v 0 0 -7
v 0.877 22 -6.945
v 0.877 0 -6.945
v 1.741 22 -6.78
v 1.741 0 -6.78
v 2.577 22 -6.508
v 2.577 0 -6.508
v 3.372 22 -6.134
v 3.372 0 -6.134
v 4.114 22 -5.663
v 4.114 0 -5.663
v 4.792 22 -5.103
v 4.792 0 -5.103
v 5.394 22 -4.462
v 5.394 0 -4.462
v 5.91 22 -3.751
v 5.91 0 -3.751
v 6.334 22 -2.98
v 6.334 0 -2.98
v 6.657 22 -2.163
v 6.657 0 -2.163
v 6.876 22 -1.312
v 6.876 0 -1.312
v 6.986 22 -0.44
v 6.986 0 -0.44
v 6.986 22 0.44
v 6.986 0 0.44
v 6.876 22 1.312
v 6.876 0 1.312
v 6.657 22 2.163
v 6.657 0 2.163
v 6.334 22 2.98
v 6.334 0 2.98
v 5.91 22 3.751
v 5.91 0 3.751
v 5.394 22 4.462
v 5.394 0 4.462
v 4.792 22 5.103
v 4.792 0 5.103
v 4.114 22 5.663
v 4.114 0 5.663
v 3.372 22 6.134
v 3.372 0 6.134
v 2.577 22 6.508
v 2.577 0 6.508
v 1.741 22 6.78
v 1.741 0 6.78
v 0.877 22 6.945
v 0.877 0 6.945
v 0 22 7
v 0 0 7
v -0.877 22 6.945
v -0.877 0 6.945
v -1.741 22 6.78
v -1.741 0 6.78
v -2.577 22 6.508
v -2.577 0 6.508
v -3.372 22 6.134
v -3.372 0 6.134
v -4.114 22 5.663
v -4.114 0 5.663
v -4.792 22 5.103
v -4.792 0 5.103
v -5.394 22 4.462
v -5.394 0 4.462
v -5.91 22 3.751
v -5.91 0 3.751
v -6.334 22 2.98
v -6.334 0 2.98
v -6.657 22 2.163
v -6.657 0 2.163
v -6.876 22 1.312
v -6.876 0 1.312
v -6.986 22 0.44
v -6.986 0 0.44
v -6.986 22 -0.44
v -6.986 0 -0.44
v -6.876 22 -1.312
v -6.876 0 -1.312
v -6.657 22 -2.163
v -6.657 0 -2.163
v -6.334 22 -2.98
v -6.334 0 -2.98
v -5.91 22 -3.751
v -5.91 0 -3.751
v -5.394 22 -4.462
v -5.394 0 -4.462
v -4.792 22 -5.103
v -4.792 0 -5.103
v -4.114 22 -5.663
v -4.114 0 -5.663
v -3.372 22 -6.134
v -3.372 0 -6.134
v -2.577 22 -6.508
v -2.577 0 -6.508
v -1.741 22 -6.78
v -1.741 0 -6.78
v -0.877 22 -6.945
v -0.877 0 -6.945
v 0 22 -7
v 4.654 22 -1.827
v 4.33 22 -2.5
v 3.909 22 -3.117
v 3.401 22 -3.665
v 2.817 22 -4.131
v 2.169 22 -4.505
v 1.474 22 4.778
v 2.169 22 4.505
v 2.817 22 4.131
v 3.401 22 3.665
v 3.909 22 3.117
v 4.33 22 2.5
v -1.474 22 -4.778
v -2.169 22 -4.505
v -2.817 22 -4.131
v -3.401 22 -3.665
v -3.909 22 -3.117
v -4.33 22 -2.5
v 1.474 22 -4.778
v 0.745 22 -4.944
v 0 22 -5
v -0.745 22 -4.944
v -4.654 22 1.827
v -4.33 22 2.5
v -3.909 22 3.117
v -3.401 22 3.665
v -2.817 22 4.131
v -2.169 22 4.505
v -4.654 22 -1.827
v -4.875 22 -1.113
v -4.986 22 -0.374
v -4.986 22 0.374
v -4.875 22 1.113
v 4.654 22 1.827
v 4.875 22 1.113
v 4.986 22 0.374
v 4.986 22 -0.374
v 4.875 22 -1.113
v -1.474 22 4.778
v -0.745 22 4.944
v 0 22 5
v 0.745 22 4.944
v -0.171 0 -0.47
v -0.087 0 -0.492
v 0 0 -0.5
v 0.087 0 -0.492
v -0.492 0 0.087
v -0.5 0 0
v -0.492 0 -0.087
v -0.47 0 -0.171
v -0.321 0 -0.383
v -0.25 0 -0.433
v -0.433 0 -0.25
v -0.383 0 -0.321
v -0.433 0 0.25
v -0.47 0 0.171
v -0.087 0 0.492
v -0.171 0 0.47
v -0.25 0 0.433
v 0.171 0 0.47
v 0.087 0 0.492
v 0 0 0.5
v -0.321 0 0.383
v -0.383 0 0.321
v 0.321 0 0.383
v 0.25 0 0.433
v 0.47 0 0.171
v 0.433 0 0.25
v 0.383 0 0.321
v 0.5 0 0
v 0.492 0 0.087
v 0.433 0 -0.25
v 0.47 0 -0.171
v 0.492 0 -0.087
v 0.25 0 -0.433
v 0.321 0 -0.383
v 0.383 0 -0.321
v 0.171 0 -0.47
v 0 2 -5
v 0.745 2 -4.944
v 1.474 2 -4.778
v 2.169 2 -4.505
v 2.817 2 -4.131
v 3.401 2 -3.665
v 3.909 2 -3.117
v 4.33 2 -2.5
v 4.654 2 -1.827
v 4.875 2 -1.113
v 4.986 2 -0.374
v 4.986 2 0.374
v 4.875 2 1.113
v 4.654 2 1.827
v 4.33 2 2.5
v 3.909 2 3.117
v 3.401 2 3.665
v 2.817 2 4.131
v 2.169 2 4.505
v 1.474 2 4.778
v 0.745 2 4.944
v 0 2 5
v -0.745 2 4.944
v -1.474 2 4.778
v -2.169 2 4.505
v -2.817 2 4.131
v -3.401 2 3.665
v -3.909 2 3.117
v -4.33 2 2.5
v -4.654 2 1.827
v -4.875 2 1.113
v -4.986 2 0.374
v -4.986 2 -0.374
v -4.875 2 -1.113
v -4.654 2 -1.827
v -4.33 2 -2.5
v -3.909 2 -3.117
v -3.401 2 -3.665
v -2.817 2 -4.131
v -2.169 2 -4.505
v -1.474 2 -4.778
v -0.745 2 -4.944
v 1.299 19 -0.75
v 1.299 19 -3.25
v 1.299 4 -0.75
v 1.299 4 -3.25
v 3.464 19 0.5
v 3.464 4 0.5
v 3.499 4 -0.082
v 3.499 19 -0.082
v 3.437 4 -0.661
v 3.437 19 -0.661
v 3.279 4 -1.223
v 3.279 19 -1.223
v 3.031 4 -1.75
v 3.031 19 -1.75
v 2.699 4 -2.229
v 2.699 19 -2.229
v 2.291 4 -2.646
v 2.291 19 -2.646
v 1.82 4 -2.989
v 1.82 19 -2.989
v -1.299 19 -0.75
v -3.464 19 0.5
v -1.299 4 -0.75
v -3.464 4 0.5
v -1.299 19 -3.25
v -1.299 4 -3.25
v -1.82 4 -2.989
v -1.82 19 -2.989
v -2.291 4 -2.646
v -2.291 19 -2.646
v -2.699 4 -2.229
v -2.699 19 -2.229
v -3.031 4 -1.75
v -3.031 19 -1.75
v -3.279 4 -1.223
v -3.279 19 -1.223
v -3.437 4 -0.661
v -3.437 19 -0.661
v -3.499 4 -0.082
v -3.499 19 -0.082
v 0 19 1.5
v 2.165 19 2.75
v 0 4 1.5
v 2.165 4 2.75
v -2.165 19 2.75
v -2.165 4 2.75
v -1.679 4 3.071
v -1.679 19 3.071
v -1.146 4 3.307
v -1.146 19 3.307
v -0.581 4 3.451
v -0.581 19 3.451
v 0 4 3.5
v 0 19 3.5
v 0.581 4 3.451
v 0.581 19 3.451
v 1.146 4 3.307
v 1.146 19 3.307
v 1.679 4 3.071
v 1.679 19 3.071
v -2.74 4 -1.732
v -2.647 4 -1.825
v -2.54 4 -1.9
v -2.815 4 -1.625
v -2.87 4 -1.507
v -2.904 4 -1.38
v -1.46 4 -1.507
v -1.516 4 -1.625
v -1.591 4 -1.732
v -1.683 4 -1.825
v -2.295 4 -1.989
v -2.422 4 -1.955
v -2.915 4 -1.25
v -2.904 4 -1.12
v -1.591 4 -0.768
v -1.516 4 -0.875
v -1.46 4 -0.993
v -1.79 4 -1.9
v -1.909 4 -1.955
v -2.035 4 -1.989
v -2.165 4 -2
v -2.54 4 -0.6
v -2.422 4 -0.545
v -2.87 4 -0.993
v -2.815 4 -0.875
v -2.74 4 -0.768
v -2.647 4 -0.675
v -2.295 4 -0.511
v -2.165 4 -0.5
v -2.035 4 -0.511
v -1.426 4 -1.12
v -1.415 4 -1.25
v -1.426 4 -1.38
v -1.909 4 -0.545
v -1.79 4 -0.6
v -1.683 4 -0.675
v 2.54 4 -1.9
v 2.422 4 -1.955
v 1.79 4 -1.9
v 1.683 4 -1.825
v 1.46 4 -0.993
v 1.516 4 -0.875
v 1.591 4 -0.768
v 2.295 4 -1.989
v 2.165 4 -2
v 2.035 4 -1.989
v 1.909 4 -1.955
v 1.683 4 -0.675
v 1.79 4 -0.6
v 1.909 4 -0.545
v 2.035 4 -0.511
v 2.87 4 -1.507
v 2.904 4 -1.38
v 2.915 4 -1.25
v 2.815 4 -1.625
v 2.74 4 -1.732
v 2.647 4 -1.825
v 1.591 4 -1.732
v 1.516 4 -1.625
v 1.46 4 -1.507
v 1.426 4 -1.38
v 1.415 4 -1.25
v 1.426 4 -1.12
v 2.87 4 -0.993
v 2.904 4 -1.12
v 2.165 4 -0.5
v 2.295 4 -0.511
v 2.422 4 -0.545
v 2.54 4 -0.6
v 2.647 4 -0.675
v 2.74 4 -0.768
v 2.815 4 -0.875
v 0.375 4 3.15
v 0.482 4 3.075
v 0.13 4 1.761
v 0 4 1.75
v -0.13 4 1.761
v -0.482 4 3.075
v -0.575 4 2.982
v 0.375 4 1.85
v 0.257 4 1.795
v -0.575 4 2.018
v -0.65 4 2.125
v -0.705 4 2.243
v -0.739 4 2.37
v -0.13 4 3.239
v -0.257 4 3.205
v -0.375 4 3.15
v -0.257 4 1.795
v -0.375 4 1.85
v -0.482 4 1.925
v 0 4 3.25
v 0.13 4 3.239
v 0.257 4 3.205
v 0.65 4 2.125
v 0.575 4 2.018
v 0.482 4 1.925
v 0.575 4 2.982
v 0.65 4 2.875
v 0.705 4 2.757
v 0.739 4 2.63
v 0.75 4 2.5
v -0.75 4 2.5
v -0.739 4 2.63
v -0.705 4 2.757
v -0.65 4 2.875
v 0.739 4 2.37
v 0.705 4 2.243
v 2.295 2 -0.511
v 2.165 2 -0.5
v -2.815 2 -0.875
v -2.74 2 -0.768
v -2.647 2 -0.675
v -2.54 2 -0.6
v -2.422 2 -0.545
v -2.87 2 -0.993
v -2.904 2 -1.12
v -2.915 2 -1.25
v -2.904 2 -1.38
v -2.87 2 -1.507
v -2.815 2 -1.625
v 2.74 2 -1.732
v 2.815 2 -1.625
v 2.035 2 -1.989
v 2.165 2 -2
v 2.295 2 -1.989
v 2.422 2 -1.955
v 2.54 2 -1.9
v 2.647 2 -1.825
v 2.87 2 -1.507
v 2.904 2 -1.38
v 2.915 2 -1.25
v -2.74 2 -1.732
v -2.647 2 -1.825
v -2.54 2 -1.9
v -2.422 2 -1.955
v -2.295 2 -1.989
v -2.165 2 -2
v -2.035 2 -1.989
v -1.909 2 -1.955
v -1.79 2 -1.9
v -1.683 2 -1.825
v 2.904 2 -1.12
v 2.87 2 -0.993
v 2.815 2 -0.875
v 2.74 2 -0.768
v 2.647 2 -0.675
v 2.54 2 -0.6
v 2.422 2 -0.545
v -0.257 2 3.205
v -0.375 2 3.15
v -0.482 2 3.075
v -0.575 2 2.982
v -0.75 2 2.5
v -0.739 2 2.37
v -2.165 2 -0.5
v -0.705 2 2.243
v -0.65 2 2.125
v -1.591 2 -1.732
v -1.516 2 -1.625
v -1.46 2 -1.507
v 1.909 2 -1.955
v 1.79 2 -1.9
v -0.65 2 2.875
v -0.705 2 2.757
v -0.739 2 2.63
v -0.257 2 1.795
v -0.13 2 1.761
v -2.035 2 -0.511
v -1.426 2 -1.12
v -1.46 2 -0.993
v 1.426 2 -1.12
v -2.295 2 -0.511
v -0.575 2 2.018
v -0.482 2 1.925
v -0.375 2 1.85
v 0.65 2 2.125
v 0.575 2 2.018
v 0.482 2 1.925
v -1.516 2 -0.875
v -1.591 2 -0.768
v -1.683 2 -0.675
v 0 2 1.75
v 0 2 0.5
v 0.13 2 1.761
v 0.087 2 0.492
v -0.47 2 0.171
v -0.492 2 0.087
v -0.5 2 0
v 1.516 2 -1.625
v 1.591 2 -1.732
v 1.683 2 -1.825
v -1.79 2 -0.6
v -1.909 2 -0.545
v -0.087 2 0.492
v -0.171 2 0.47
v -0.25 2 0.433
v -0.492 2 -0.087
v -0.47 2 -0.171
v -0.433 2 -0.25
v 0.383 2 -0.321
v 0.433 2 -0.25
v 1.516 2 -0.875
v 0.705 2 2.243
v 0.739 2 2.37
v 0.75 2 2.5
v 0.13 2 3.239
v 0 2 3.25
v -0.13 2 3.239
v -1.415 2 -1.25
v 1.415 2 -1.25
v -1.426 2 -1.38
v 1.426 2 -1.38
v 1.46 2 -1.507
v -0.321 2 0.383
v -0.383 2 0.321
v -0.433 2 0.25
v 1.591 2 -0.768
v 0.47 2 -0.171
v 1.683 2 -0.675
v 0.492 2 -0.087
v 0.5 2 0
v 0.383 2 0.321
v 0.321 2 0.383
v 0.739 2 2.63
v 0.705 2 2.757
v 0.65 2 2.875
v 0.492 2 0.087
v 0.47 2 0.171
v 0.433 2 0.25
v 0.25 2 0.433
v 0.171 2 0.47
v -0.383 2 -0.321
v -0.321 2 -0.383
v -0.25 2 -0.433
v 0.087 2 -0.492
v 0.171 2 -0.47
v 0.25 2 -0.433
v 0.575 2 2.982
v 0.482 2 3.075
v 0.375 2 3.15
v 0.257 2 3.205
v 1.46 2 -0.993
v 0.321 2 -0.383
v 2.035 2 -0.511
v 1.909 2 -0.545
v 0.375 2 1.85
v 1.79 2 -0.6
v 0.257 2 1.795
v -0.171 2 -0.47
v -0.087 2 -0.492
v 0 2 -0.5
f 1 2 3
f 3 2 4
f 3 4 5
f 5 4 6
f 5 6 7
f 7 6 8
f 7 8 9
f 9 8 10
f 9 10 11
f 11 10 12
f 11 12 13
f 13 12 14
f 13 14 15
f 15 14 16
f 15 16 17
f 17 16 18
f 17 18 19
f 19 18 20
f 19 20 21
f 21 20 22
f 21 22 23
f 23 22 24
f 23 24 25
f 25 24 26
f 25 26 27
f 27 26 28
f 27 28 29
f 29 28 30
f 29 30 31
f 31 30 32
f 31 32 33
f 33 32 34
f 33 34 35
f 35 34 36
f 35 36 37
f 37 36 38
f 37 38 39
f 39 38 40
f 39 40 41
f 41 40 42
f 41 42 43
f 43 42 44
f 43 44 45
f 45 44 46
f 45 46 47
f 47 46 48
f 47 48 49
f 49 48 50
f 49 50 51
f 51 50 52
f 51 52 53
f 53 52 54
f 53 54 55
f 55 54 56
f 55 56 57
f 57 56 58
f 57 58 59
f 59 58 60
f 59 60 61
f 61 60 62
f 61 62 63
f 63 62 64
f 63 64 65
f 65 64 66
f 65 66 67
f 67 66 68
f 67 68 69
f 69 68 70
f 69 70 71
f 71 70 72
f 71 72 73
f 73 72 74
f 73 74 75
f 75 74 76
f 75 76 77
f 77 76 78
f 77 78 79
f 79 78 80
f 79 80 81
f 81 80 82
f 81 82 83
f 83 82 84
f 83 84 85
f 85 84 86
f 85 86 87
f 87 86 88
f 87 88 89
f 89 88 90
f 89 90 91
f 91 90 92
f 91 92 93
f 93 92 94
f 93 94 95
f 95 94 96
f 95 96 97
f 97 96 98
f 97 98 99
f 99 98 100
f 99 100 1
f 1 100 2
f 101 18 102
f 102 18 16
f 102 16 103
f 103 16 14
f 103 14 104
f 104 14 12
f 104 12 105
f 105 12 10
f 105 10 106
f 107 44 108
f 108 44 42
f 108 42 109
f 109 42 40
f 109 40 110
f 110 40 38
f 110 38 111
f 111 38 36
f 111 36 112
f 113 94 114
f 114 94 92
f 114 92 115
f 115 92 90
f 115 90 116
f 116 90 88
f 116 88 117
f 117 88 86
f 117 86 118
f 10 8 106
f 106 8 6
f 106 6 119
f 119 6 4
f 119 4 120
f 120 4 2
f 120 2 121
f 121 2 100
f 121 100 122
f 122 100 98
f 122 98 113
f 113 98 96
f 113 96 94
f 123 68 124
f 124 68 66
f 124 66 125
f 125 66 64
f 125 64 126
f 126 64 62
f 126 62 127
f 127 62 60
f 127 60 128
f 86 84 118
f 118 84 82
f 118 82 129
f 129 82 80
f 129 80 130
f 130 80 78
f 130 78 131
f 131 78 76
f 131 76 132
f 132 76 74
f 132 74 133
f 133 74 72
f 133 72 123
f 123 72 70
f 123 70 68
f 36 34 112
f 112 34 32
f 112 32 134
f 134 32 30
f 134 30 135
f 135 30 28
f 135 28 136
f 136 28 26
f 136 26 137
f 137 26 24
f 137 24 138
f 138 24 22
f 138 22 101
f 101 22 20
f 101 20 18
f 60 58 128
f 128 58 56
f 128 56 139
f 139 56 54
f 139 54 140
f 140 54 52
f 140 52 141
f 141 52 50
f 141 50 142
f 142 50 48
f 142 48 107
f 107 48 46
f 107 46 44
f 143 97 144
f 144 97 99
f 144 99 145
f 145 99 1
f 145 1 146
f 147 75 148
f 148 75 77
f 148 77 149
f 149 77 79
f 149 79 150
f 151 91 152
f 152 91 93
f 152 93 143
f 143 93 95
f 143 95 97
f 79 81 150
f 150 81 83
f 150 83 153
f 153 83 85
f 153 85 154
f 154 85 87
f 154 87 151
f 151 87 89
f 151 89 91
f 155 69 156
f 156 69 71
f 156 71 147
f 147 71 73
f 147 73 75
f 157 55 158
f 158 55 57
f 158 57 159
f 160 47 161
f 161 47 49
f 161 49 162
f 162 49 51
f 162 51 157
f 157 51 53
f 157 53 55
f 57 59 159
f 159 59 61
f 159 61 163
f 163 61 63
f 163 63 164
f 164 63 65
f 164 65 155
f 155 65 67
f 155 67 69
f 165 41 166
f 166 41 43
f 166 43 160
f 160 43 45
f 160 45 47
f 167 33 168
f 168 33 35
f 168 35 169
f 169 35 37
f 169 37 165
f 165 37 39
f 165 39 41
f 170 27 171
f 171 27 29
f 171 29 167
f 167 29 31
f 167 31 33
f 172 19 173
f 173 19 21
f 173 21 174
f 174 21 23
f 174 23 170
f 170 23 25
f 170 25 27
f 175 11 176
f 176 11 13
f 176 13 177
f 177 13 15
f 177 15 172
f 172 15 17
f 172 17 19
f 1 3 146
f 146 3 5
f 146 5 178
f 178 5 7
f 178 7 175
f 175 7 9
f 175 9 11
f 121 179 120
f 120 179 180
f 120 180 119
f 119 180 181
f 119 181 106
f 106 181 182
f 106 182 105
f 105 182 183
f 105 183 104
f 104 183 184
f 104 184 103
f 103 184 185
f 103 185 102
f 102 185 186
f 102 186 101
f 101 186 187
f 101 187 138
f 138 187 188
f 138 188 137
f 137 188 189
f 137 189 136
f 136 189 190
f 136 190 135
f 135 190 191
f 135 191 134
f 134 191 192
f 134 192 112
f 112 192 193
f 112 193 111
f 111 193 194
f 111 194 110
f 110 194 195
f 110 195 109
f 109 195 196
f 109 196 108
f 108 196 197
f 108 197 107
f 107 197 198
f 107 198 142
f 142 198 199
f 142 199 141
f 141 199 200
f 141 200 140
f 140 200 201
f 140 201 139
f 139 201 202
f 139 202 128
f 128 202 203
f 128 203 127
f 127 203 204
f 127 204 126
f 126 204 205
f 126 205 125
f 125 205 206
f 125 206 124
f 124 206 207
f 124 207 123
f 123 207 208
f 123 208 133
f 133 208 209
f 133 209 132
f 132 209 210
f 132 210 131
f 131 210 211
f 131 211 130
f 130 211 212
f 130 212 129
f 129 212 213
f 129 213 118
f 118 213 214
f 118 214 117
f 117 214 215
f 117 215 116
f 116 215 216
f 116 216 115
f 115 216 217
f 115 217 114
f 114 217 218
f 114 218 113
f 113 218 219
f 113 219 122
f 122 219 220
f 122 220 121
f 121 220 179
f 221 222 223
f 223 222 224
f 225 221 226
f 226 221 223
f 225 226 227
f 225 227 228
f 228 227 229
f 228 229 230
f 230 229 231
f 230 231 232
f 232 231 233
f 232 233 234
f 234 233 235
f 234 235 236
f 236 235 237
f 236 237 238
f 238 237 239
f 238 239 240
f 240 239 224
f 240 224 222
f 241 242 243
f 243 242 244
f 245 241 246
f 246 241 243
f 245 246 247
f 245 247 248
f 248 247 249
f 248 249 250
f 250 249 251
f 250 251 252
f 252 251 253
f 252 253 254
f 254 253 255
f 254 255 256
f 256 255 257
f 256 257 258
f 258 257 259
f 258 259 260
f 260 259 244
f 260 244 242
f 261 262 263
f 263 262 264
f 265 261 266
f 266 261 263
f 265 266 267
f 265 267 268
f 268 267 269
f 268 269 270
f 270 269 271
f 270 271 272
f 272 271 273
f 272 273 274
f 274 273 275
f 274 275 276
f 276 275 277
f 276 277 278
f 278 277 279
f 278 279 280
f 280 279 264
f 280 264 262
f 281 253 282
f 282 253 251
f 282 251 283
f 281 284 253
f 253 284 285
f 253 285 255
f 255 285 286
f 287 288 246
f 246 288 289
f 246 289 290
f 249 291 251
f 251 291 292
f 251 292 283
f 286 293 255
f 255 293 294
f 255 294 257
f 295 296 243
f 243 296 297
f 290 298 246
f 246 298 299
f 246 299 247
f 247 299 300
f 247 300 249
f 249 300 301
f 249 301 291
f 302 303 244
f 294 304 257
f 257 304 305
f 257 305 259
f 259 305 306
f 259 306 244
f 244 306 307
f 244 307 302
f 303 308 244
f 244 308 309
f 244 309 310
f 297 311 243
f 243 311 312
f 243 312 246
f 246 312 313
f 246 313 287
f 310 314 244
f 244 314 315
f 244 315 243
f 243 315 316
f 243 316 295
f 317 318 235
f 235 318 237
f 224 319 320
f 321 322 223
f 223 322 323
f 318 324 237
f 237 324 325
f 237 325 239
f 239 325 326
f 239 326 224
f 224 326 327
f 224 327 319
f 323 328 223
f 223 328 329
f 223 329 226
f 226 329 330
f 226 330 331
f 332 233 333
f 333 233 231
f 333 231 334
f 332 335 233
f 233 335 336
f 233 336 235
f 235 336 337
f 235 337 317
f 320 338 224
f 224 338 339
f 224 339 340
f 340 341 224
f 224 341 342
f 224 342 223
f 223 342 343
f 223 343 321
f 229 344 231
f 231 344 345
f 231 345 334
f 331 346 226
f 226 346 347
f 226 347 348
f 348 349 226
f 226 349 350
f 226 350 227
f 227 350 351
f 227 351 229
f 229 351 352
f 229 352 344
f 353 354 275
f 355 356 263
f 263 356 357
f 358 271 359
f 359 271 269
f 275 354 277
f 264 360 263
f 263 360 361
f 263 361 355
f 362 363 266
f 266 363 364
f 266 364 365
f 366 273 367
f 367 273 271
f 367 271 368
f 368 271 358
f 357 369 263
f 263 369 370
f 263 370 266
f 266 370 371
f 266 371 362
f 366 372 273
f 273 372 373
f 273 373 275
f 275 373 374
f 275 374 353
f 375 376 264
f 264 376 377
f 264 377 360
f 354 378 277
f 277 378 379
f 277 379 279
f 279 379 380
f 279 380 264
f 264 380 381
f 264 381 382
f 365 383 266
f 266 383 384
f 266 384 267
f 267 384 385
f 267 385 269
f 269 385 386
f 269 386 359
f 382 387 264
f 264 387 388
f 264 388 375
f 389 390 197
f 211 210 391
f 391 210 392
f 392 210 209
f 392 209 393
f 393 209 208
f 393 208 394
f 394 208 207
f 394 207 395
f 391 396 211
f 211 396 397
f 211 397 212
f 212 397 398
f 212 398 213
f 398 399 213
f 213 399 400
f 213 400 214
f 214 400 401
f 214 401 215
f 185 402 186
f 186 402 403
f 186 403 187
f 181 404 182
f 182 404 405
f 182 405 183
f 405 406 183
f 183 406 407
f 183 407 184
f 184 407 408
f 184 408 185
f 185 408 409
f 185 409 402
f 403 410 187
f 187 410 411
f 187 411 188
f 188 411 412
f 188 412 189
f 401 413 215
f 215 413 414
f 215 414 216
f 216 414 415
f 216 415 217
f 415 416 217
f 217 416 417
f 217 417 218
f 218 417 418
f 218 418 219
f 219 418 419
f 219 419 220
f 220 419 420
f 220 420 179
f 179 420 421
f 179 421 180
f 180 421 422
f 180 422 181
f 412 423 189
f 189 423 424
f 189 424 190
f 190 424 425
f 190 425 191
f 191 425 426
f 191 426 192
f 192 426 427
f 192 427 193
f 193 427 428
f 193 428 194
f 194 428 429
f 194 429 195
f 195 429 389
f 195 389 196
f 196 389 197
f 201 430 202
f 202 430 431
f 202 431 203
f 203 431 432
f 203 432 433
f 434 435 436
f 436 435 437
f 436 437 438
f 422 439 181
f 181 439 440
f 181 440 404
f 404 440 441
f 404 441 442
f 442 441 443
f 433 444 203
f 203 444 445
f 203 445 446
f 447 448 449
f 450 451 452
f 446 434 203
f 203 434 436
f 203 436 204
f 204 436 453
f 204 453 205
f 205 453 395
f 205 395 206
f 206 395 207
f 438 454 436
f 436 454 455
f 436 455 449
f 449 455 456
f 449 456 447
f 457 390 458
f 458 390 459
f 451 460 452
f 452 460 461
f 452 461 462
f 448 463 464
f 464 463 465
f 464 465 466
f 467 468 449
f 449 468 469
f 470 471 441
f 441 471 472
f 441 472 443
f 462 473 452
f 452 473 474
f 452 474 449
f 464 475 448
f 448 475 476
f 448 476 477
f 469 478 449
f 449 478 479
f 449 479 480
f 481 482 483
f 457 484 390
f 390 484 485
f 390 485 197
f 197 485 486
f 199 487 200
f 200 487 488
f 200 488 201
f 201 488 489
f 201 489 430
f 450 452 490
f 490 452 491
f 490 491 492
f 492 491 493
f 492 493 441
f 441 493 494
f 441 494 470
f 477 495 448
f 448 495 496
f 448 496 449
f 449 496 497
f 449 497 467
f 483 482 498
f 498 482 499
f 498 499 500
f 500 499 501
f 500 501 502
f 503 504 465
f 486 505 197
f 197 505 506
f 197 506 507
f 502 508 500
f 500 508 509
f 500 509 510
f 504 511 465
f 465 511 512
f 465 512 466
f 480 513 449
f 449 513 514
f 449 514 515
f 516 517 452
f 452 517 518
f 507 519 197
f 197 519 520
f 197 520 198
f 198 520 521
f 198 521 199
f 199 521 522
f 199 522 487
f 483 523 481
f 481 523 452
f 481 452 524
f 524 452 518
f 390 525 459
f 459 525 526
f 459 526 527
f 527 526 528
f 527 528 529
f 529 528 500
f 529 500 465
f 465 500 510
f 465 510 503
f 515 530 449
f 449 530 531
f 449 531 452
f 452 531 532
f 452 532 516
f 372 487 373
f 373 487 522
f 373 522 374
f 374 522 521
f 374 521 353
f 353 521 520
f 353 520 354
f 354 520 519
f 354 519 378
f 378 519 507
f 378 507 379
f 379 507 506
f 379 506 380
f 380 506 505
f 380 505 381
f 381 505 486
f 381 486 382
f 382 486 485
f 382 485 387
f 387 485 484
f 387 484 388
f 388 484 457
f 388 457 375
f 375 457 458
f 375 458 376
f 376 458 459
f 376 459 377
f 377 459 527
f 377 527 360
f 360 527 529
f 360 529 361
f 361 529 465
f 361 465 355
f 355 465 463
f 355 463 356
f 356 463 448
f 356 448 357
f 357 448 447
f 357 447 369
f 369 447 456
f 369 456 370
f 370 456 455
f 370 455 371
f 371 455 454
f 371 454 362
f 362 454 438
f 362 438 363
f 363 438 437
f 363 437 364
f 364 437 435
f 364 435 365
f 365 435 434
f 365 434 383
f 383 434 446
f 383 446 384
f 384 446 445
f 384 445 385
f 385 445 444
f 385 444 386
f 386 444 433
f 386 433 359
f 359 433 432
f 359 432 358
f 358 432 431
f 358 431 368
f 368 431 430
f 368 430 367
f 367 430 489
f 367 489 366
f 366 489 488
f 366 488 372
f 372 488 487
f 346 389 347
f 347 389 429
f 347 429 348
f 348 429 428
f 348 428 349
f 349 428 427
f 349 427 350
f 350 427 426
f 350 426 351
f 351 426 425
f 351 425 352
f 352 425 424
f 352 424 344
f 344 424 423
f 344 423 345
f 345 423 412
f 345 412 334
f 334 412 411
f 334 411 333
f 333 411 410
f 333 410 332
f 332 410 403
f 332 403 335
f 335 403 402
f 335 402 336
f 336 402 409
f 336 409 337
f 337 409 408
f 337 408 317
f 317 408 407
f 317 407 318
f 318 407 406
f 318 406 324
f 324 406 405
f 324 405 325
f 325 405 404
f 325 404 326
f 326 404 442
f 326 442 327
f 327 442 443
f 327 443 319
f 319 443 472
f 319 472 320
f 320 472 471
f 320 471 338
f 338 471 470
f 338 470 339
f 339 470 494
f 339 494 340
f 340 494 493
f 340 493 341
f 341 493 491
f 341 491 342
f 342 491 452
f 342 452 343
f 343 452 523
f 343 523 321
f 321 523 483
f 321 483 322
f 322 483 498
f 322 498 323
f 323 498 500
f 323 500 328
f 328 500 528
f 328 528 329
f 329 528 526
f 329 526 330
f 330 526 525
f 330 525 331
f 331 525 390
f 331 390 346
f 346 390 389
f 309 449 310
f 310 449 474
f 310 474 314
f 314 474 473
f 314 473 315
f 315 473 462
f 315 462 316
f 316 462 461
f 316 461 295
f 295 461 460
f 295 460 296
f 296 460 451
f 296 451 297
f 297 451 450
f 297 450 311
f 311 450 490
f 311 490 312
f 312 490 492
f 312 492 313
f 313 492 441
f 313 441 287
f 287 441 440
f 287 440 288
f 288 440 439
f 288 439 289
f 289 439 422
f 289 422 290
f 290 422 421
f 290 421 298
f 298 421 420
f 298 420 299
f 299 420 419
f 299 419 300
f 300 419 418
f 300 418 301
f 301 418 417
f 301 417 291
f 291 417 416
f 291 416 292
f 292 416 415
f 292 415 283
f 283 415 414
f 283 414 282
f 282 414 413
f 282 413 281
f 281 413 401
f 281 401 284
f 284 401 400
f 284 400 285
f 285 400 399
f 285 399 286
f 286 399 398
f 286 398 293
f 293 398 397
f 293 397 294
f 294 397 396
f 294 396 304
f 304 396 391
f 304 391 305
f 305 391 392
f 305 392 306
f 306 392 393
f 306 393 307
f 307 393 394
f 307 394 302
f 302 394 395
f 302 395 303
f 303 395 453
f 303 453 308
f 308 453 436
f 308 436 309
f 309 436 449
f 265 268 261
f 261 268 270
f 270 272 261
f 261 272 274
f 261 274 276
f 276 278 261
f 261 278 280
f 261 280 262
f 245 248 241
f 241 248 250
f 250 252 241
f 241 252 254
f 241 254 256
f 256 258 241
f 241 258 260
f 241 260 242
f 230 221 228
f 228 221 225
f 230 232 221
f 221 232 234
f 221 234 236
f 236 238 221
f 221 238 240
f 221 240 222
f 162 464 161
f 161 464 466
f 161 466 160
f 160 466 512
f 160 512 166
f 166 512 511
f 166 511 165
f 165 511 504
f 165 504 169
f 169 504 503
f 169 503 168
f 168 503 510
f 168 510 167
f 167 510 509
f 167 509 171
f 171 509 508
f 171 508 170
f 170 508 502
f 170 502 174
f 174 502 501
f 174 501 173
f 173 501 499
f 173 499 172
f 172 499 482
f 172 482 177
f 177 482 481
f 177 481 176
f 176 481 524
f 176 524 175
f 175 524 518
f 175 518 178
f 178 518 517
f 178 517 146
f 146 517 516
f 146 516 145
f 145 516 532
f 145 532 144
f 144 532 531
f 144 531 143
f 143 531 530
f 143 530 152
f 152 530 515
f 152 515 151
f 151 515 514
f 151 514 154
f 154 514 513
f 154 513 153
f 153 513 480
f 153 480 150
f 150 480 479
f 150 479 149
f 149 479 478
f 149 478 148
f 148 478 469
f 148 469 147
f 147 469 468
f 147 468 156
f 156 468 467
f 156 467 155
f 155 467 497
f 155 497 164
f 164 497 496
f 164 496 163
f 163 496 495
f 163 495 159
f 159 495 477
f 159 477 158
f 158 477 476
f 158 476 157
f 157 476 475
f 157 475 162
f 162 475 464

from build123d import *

# Parameters (mm, degrees)
SKETCH1_R           = 7
BOSS_EXTRUDE1_DEPTH = 22
CAVITY1_START       = 2
CAVITY1_OUTLINE_R   = 5
CAVITY1_DEPTH       = 20
CAVITY1_START_2     = 19
CAVITY1_2_DEPTH     = 3
CAVITY1_3_OUTLINE_R = 0.75
CAVITY1_3_DEPTH     = 2
SKETCH2_R           = 0.5
CUT_EXTRUDE1_DEPTH  = 23.315913604


# Read off the part's stored shape, not the designer's step: Cavity1
with BuildPart() as part:
    # Sketch1 → Boss-Extrude1 (new body)
    with BuildSketch(Plane(origin=(0, 0, 0), x_dir=(1, 0, 0), z_dir=(0, 1, 0))):
        with Locations(Location((0, 0, 0), (0, 0, 270))):
            Circle(SKETCH1_R)
    extrude(amount=BOSS_EXTRUDE1_DEPTH)

    # Cavity1 outline → Cavity1 (cut)
    with BuildSketch(Plane(origin=(0, 0, 0), x_dir=(1, 0, 0), z_dir=(0, 1, 0)).offset(CAVITY1_START)):
        Circle(CAVITY1_OUTLINE_R)
        with BuildLine():
            Line((0, -1.5), (2.165063509, -2.75))
            ThreePointArc((2.165063509, -2.75), (0, -3.5), (-2.165063509, -2.75))
            Line((-2.165063509, -2.75), (0, -1.5))
        make_face(mode=Mode.SUBTRACT)
        with BuildLine():
            Line((-1.299038106, 0.75), (-3.464101615, -0.5))
            ThreePointArc((-3.464101615, -0.5), (-3.031088913, 1.75), (-1.299038106, 3.25))
            Line((-1.299038106, 3.25), (-1.299038106, 0.75))
        make_face(mode=Mode.SUBTRACT)
        with BuildLine():
            Line((3.464101615, -0.5), (1.299038106, 0.75))
            Line((1.299038106, 0.75), (1.299038106, 3.25))
            ThreePointArc((1.299038106, 3.25), (3.031088913, 1.75), (3.464101615, -0.5))
        make_face(mode=Mode.SUBTRACT)
    extrude(amount=CAVITY1_DEPTH, mode=Mode.SUBTRACT)

    # Cavity1 2 outline → Cavity1 2 (cut)
    with BuildSketch(Plane(origin=(0, 0, 0), x_dir=(1, 0, 0), z_dir=(0, 1, 0)).offset(CAVITY1_START_2)):
        with BuildLine():
            Line((1.299038106, 3.25), (1.299038106, 0.75))
            Line((1.299038106, 0.75), (3.464101615, -0.5))
            ThreePointArc((3.464101615, -0.5), (3.031088913, 1.75), (1.299038106, 3.25))
        make_face()
        with BuildLine():
            ThreePointArc((-1.299038106, 3.25), (-3.031088913, 1.75), (-3.464101615, -0.5))
            Line((-3.464101615, -0.5), (-1.299038106, 0.75))
            Line((-1.299038106, 0.75), (-1.299038106, 3.25))
        make_face()
        with BuildLine():
            ThreePointArc((-2.165063509, -2.75), (0, -3.5), (2.165063509, -2.75))
            Line((2.165063509, -2.75), (0, -1.5))
            Line((0, -1.5), (-2.165063509, -2.75))
        make_face()
    extrude(amount=CAVITY1_2_DEPTH, mode=Mode.SUBTRACT)

    # Cavity1 3 outline → Cavity1 3 (cut)
    # profile 1 of 3: a face of its own
    with BuildSketch(Plane(origin=(0, 0, 0), x_dir=(1, 0, 0), z_dir=(0, 1, 0)).offset(CAVITY1_START)):
        with BuildLine():
            Line((1.299038106, 3.25), (1.299038106, 0.75))
            Line((1.299038106, 0.75), (3.464101615, -0.5))
            ThreePointArc((3.464101615, -0.5), (3.031088913, 1.75), (1.299038106, 3.25))
        make_face()
        with Locations((2.165063509, 1.25)):
            Circle(CAVITY1_3_OUTLINE_R, mode=Mode.SUBTRACT)
    # profile 2 of 3: a face of its own
    with BuildSketch(Plane(origin=(0, 0, 0), x_dir=(1, 0, 0), z_dir=(0, 1, 0)).offset(CAVITY1_START)):
        with BuildLine():
            ThreePointArc((-1.299038106, 3.25), (-3.031088913, 1.75), (-3.464101615, -0.5))
            Line((-3.464101615, -0.5), (-1.299038106, 0.75))
            Line((-1.299038106, 0.75), (-1.299038106, 3.25))
        make_face()
        with Locations((-2.165063509, 1.25)):
            Circle(CAVITY1_3_OUTLINE_R, mode=Mode.SUBTRACT)
    # profile 3 of 3: a face of its own
    with BuildSketch(Plane(origin=(0, 0, 0), x_dir=(1, 0, 0), z_dir=(0, 1, 0)).offset(CAVITY1_START)):
        with BuildLine():
            ThreePointArc((-2.165063509, -2.75), (0, -3.5), (2.165063509, -2.75))
            Line((2.165063509, -2.75), (0, -1.5))
            Line((0, -1.5), (-2.165063509, -2.75))
        make_face()
        with Locations((0, -2.5)):
            Circle(CAVITY1_3_OUTLINE_R, mode=Mode.SUBTRACT)
    extrude(amount=CAVITY1_3_DEPTH, mode=Mode.SUBTRACT)

    # Sketch2 → Cut-Extrude1 (cut, through all)
    with BuildSketch(Plane(origin=(0, 2, 0), x_dir=(1, 0, 0), z_dir=(0, 1, 0))):
        with Locations(Location((0, 0, 0), (0, 0, 270))):
            Circle(SKETCH2_R)
    extrude(amount=-CUT_EXTRUDE1_DEPTH, mode=Mode.SUBTRACT)


solid = part.part
